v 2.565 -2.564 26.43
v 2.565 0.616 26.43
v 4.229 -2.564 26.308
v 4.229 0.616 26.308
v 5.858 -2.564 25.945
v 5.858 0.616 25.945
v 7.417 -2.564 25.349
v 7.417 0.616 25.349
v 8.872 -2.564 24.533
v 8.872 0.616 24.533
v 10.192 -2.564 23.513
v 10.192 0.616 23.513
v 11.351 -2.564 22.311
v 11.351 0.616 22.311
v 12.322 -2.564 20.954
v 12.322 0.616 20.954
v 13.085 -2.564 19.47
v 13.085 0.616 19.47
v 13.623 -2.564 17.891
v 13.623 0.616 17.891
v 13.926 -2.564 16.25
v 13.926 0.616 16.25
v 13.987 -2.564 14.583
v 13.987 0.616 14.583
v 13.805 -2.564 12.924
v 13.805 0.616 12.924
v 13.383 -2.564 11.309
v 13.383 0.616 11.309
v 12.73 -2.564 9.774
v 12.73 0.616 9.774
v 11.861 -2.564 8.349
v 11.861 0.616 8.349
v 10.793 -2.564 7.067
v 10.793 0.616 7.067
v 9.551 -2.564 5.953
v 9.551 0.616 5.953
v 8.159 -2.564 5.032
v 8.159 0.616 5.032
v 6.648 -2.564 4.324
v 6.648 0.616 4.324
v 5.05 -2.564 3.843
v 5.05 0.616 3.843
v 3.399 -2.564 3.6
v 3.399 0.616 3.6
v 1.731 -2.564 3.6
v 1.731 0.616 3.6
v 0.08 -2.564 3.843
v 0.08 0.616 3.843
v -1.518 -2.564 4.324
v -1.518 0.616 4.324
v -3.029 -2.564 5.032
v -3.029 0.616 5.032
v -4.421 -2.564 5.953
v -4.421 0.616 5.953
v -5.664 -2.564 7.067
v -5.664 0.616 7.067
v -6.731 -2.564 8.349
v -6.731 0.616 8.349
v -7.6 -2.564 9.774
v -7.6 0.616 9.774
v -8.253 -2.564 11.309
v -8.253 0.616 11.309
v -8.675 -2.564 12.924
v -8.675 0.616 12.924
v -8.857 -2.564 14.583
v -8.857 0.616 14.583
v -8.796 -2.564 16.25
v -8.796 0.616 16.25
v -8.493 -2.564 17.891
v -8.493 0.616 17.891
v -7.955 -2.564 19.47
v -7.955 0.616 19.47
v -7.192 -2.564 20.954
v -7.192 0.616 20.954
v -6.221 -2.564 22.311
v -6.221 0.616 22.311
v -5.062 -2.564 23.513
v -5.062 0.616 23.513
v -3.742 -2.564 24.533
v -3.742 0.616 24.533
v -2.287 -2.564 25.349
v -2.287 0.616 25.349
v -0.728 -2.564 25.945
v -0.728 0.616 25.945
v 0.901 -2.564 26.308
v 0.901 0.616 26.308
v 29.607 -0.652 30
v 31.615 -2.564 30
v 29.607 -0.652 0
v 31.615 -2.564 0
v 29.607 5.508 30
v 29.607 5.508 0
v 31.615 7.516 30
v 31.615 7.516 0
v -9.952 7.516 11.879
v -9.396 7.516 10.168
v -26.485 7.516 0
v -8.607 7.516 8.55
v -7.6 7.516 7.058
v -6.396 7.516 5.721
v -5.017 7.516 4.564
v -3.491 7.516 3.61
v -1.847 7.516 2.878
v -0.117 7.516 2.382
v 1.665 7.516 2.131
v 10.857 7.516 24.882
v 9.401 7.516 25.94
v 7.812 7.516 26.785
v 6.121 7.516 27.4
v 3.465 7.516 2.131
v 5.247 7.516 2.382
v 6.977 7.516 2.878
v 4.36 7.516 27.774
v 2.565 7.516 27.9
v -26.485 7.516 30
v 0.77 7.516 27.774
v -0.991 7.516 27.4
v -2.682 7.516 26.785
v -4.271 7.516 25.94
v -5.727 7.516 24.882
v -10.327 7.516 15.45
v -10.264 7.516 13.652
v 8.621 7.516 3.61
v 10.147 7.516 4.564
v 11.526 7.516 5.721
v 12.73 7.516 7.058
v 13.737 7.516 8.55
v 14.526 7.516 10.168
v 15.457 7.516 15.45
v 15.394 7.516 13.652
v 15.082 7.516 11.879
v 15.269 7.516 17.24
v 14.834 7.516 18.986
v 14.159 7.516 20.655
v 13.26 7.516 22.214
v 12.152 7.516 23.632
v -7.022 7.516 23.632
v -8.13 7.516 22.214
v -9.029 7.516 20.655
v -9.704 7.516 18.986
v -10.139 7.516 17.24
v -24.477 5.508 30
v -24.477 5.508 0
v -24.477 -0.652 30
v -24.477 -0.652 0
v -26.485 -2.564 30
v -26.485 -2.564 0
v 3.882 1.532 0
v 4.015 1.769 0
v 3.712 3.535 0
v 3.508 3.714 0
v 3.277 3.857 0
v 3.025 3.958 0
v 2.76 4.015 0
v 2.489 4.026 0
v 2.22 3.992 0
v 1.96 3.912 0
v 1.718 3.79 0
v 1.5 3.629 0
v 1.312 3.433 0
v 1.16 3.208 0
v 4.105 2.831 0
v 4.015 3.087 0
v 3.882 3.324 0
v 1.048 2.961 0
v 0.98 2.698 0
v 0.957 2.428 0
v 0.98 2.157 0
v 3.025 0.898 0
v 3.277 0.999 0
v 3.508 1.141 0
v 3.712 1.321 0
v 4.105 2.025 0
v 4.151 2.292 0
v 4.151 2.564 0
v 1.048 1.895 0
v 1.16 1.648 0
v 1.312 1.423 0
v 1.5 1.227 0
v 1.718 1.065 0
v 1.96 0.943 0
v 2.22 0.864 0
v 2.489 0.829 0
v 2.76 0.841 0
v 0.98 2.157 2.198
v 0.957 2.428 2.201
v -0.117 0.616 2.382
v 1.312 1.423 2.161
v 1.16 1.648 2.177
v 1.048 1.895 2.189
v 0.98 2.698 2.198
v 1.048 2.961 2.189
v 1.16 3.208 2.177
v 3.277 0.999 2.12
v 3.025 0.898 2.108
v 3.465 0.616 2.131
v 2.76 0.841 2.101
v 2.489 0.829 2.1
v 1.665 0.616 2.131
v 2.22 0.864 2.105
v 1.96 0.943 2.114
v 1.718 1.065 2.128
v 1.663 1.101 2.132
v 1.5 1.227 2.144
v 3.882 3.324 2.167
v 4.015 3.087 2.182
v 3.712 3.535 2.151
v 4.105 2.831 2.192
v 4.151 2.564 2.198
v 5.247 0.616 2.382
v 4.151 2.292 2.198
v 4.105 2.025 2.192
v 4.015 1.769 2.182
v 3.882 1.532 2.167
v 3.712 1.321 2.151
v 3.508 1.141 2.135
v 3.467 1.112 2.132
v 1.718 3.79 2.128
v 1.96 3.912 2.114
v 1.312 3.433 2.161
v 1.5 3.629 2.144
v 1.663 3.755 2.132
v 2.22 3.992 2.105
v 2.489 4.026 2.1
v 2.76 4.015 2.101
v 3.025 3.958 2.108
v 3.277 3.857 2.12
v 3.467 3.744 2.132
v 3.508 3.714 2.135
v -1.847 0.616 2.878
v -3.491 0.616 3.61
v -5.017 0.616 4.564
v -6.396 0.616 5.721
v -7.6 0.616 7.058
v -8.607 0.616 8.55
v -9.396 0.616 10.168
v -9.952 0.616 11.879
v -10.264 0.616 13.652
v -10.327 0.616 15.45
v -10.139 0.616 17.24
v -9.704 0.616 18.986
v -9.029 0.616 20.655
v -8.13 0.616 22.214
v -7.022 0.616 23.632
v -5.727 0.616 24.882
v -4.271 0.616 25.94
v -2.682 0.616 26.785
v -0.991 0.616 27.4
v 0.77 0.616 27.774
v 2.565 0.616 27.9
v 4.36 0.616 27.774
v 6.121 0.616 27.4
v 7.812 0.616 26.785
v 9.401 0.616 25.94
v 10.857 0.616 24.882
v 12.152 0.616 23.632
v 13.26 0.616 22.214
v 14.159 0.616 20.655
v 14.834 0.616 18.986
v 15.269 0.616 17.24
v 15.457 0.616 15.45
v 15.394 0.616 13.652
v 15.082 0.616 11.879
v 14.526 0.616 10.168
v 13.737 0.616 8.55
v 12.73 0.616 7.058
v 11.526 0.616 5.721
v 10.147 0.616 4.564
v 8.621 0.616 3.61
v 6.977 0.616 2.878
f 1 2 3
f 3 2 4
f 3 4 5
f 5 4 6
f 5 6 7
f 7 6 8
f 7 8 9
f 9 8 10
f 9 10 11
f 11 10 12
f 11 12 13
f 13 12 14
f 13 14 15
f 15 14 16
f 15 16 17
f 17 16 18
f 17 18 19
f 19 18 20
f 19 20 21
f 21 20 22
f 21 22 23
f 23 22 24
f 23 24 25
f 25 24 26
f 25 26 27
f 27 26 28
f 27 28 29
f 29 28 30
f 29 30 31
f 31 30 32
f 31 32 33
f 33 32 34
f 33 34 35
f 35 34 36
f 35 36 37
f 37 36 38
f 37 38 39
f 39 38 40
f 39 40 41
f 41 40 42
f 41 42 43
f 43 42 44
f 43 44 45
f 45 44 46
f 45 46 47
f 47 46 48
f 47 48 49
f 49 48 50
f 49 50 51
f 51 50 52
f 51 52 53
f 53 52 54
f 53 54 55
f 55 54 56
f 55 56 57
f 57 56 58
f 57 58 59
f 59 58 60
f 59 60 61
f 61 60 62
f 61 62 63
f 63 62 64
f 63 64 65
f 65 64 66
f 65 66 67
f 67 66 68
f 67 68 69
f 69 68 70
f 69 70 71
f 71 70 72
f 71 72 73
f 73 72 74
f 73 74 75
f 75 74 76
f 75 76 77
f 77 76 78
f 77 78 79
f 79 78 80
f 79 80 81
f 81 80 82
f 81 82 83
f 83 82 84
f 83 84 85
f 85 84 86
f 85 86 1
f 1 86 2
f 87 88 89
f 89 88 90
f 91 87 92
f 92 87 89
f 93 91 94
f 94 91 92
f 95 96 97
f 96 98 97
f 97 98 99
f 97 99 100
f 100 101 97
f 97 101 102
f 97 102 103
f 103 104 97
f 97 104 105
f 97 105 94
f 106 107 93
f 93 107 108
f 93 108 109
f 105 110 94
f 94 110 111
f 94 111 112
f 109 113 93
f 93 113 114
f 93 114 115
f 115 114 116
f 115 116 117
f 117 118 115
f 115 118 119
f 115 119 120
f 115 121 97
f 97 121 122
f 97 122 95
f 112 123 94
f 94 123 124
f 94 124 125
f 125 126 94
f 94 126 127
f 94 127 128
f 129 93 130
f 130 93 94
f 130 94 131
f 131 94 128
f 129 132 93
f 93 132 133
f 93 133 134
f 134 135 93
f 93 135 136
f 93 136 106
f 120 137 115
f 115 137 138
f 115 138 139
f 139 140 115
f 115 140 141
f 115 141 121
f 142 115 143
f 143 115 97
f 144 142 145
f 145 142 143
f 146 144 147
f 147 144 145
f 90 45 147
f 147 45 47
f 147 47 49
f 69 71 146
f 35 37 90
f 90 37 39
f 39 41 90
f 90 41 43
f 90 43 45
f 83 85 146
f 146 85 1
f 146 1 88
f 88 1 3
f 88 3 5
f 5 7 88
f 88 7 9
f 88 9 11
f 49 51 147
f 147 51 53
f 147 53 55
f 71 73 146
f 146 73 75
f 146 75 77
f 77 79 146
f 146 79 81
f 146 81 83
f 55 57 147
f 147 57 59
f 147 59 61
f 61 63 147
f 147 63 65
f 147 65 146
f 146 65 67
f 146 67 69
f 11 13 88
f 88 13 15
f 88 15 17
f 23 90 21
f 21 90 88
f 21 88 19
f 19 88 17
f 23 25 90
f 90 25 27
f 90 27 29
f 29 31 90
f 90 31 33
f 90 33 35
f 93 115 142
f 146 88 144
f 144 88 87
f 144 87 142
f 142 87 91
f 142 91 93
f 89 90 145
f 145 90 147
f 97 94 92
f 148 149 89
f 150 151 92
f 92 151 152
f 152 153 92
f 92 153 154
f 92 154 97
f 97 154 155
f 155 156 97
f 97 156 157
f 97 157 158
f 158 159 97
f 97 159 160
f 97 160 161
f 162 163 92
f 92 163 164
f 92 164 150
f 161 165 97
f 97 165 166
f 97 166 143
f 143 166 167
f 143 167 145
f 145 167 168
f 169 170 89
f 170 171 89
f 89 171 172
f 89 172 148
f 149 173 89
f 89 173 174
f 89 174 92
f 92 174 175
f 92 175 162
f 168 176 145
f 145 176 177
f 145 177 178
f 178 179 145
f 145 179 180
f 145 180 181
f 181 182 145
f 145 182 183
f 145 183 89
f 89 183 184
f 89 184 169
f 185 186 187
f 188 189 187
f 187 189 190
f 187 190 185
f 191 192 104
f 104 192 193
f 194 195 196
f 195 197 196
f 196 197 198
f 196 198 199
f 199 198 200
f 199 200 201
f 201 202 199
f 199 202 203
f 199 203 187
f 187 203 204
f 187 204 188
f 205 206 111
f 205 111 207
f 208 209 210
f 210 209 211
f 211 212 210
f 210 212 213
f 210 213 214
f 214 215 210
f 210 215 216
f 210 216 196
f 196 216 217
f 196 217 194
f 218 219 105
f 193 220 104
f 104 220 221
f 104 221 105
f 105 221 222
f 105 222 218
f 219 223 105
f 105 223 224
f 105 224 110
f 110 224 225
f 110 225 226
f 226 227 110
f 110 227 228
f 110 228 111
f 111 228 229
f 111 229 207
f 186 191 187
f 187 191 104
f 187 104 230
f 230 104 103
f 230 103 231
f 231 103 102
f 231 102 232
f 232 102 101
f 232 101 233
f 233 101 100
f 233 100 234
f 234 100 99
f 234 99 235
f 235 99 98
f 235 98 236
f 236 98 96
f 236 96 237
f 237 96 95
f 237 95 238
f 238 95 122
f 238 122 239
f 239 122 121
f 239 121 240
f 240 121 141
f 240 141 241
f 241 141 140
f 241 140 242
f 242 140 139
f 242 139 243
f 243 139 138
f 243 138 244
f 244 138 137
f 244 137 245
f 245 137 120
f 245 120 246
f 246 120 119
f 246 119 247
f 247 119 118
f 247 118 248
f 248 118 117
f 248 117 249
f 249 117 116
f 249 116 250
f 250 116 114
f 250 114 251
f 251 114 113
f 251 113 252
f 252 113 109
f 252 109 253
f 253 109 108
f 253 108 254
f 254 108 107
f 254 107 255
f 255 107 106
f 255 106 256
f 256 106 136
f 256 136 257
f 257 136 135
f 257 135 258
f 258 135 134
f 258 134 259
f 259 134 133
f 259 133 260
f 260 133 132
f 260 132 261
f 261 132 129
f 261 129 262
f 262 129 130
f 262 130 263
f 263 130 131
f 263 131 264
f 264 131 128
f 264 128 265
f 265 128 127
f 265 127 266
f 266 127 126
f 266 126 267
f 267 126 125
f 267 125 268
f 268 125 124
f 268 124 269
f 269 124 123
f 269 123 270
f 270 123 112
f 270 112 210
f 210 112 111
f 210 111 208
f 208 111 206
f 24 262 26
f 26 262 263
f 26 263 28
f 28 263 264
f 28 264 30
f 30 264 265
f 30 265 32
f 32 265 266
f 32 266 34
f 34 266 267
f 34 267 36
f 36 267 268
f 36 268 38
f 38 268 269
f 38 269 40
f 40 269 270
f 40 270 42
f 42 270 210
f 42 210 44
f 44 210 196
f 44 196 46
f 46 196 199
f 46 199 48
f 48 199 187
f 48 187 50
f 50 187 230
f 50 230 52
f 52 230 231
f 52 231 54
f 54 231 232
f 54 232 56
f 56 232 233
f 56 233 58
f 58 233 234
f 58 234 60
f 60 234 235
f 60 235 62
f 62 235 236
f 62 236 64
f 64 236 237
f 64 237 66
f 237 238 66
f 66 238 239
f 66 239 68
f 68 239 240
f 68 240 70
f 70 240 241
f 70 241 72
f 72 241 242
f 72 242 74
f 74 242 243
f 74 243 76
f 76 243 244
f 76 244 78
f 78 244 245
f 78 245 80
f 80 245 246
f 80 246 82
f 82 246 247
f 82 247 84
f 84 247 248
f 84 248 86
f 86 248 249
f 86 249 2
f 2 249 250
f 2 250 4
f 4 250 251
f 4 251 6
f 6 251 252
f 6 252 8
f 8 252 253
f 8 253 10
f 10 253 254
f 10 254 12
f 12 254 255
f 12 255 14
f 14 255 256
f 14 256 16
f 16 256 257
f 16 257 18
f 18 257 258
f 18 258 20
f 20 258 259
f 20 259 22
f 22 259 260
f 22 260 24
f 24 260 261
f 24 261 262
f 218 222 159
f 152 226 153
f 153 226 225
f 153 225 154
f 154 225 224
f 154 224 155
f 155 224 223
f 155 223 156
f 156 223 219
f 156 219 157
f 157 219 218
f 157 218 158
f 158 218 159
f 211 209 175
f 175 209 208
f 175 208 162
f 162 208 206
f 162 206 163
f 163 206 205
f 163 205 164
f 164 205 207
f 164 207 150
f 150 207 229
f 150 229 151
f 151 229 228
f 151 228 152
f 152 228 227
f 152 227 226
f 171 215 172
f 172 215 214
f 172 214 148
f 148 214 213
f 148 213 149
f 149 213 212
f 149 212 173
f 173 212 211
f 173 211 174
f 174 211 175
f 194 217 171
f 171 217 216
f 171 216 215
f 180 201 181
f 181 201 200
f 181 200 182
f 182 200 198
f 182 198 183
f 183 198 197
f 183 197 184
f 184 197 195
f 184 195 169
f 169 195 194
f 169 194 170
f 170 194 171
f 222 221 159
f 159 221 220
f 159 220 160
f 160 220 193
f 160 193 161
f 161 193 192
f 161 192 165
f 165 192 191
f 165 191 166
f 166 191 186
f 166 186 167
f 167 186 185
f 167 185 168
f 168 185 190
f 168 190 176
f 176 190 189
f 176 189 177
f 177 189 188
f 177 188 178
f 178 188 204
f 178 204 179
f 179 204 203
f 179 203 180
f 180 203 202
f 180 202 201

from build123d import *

# Parameters (mm, degrees)
EXTRUDE_1_DEPTH     = 30
SKETCH_2_R          = 11.43
CUT_EXTRUDE_1_DEPTH = 45.733812445
SKETCH_2_3_R        = 12.9
SKETCH_2_3_R_2      = 11.43
CUT_EXTRUDE_2_DEPTH = 6.9
SKETCH_3_R          = 1.6
CUT_EXTRUDE_3_DEPTH = 5


with BuildPart() as part:
    # 草图1 → 凸台-拉伸1 (new body)
    with BuildSketch(Plane.XY):
        Polygon((31.614989733, 7.516016427), (-26.485010267, 7.516016427), (-24.476827008, 5.507833169), (-24.476827008, -0.652166831), (-26.485010267, -2.563983573), (31.614989733, -2.563983573), (29.606806474, -0.652166831), (29.606806474, 5.507833169), align=None)
    extrude(amount=EXTRUDE_1_DEPTH)

    # 草图2 → 切除-拉伸1 (cut, through all)
    with BuildSketch(Plane(origin=(0, 7.516016427, 0), x_dir=(1, 0, 0), z_dir=(0, 1, 0))):
        with Locations((2.564989733, -15)):
            Circle(SKETCH_2_R)
    extrude(amount=-CUT_EXTRUDE_1_DEPTH, mode=Mode.SUBTRACT)

    # 草图2<3> → 切除-拉伸2 (cut)
    with BuildSketch(Plane(origin=(0, 7.516016427, 0), x_dir=(1, 0, 0), z_dir=(0, 1, 0))):
        with Locations((2.564989733, -15)):
            Circle(SKETCH_2_3_R)
        with Locations((2.564989733, -15)):
            Circle(SKETCH_2_3_R_2, mode=Mode.SUBTRACT)
    extrude(amount=-CUT_EXTRUDE_2_DEPTH, mode=Mode.SUBTRACT)

    # 草图3 → 切除-拉伸3 (cut)
    with BuildSketch(Plane(origin=(0, 0, 0), x_dir=(-1, 0, 0), z_dir=(0, 0, -1))):
        with Locations((-2.556806474, 2.427833169)):
            Circle(SKETCH_3_R)
    extrude(amount=-CUT_EXTRUDE_3_DEPTH, mode=Mode.SUBTRACT)


solid = part.part
